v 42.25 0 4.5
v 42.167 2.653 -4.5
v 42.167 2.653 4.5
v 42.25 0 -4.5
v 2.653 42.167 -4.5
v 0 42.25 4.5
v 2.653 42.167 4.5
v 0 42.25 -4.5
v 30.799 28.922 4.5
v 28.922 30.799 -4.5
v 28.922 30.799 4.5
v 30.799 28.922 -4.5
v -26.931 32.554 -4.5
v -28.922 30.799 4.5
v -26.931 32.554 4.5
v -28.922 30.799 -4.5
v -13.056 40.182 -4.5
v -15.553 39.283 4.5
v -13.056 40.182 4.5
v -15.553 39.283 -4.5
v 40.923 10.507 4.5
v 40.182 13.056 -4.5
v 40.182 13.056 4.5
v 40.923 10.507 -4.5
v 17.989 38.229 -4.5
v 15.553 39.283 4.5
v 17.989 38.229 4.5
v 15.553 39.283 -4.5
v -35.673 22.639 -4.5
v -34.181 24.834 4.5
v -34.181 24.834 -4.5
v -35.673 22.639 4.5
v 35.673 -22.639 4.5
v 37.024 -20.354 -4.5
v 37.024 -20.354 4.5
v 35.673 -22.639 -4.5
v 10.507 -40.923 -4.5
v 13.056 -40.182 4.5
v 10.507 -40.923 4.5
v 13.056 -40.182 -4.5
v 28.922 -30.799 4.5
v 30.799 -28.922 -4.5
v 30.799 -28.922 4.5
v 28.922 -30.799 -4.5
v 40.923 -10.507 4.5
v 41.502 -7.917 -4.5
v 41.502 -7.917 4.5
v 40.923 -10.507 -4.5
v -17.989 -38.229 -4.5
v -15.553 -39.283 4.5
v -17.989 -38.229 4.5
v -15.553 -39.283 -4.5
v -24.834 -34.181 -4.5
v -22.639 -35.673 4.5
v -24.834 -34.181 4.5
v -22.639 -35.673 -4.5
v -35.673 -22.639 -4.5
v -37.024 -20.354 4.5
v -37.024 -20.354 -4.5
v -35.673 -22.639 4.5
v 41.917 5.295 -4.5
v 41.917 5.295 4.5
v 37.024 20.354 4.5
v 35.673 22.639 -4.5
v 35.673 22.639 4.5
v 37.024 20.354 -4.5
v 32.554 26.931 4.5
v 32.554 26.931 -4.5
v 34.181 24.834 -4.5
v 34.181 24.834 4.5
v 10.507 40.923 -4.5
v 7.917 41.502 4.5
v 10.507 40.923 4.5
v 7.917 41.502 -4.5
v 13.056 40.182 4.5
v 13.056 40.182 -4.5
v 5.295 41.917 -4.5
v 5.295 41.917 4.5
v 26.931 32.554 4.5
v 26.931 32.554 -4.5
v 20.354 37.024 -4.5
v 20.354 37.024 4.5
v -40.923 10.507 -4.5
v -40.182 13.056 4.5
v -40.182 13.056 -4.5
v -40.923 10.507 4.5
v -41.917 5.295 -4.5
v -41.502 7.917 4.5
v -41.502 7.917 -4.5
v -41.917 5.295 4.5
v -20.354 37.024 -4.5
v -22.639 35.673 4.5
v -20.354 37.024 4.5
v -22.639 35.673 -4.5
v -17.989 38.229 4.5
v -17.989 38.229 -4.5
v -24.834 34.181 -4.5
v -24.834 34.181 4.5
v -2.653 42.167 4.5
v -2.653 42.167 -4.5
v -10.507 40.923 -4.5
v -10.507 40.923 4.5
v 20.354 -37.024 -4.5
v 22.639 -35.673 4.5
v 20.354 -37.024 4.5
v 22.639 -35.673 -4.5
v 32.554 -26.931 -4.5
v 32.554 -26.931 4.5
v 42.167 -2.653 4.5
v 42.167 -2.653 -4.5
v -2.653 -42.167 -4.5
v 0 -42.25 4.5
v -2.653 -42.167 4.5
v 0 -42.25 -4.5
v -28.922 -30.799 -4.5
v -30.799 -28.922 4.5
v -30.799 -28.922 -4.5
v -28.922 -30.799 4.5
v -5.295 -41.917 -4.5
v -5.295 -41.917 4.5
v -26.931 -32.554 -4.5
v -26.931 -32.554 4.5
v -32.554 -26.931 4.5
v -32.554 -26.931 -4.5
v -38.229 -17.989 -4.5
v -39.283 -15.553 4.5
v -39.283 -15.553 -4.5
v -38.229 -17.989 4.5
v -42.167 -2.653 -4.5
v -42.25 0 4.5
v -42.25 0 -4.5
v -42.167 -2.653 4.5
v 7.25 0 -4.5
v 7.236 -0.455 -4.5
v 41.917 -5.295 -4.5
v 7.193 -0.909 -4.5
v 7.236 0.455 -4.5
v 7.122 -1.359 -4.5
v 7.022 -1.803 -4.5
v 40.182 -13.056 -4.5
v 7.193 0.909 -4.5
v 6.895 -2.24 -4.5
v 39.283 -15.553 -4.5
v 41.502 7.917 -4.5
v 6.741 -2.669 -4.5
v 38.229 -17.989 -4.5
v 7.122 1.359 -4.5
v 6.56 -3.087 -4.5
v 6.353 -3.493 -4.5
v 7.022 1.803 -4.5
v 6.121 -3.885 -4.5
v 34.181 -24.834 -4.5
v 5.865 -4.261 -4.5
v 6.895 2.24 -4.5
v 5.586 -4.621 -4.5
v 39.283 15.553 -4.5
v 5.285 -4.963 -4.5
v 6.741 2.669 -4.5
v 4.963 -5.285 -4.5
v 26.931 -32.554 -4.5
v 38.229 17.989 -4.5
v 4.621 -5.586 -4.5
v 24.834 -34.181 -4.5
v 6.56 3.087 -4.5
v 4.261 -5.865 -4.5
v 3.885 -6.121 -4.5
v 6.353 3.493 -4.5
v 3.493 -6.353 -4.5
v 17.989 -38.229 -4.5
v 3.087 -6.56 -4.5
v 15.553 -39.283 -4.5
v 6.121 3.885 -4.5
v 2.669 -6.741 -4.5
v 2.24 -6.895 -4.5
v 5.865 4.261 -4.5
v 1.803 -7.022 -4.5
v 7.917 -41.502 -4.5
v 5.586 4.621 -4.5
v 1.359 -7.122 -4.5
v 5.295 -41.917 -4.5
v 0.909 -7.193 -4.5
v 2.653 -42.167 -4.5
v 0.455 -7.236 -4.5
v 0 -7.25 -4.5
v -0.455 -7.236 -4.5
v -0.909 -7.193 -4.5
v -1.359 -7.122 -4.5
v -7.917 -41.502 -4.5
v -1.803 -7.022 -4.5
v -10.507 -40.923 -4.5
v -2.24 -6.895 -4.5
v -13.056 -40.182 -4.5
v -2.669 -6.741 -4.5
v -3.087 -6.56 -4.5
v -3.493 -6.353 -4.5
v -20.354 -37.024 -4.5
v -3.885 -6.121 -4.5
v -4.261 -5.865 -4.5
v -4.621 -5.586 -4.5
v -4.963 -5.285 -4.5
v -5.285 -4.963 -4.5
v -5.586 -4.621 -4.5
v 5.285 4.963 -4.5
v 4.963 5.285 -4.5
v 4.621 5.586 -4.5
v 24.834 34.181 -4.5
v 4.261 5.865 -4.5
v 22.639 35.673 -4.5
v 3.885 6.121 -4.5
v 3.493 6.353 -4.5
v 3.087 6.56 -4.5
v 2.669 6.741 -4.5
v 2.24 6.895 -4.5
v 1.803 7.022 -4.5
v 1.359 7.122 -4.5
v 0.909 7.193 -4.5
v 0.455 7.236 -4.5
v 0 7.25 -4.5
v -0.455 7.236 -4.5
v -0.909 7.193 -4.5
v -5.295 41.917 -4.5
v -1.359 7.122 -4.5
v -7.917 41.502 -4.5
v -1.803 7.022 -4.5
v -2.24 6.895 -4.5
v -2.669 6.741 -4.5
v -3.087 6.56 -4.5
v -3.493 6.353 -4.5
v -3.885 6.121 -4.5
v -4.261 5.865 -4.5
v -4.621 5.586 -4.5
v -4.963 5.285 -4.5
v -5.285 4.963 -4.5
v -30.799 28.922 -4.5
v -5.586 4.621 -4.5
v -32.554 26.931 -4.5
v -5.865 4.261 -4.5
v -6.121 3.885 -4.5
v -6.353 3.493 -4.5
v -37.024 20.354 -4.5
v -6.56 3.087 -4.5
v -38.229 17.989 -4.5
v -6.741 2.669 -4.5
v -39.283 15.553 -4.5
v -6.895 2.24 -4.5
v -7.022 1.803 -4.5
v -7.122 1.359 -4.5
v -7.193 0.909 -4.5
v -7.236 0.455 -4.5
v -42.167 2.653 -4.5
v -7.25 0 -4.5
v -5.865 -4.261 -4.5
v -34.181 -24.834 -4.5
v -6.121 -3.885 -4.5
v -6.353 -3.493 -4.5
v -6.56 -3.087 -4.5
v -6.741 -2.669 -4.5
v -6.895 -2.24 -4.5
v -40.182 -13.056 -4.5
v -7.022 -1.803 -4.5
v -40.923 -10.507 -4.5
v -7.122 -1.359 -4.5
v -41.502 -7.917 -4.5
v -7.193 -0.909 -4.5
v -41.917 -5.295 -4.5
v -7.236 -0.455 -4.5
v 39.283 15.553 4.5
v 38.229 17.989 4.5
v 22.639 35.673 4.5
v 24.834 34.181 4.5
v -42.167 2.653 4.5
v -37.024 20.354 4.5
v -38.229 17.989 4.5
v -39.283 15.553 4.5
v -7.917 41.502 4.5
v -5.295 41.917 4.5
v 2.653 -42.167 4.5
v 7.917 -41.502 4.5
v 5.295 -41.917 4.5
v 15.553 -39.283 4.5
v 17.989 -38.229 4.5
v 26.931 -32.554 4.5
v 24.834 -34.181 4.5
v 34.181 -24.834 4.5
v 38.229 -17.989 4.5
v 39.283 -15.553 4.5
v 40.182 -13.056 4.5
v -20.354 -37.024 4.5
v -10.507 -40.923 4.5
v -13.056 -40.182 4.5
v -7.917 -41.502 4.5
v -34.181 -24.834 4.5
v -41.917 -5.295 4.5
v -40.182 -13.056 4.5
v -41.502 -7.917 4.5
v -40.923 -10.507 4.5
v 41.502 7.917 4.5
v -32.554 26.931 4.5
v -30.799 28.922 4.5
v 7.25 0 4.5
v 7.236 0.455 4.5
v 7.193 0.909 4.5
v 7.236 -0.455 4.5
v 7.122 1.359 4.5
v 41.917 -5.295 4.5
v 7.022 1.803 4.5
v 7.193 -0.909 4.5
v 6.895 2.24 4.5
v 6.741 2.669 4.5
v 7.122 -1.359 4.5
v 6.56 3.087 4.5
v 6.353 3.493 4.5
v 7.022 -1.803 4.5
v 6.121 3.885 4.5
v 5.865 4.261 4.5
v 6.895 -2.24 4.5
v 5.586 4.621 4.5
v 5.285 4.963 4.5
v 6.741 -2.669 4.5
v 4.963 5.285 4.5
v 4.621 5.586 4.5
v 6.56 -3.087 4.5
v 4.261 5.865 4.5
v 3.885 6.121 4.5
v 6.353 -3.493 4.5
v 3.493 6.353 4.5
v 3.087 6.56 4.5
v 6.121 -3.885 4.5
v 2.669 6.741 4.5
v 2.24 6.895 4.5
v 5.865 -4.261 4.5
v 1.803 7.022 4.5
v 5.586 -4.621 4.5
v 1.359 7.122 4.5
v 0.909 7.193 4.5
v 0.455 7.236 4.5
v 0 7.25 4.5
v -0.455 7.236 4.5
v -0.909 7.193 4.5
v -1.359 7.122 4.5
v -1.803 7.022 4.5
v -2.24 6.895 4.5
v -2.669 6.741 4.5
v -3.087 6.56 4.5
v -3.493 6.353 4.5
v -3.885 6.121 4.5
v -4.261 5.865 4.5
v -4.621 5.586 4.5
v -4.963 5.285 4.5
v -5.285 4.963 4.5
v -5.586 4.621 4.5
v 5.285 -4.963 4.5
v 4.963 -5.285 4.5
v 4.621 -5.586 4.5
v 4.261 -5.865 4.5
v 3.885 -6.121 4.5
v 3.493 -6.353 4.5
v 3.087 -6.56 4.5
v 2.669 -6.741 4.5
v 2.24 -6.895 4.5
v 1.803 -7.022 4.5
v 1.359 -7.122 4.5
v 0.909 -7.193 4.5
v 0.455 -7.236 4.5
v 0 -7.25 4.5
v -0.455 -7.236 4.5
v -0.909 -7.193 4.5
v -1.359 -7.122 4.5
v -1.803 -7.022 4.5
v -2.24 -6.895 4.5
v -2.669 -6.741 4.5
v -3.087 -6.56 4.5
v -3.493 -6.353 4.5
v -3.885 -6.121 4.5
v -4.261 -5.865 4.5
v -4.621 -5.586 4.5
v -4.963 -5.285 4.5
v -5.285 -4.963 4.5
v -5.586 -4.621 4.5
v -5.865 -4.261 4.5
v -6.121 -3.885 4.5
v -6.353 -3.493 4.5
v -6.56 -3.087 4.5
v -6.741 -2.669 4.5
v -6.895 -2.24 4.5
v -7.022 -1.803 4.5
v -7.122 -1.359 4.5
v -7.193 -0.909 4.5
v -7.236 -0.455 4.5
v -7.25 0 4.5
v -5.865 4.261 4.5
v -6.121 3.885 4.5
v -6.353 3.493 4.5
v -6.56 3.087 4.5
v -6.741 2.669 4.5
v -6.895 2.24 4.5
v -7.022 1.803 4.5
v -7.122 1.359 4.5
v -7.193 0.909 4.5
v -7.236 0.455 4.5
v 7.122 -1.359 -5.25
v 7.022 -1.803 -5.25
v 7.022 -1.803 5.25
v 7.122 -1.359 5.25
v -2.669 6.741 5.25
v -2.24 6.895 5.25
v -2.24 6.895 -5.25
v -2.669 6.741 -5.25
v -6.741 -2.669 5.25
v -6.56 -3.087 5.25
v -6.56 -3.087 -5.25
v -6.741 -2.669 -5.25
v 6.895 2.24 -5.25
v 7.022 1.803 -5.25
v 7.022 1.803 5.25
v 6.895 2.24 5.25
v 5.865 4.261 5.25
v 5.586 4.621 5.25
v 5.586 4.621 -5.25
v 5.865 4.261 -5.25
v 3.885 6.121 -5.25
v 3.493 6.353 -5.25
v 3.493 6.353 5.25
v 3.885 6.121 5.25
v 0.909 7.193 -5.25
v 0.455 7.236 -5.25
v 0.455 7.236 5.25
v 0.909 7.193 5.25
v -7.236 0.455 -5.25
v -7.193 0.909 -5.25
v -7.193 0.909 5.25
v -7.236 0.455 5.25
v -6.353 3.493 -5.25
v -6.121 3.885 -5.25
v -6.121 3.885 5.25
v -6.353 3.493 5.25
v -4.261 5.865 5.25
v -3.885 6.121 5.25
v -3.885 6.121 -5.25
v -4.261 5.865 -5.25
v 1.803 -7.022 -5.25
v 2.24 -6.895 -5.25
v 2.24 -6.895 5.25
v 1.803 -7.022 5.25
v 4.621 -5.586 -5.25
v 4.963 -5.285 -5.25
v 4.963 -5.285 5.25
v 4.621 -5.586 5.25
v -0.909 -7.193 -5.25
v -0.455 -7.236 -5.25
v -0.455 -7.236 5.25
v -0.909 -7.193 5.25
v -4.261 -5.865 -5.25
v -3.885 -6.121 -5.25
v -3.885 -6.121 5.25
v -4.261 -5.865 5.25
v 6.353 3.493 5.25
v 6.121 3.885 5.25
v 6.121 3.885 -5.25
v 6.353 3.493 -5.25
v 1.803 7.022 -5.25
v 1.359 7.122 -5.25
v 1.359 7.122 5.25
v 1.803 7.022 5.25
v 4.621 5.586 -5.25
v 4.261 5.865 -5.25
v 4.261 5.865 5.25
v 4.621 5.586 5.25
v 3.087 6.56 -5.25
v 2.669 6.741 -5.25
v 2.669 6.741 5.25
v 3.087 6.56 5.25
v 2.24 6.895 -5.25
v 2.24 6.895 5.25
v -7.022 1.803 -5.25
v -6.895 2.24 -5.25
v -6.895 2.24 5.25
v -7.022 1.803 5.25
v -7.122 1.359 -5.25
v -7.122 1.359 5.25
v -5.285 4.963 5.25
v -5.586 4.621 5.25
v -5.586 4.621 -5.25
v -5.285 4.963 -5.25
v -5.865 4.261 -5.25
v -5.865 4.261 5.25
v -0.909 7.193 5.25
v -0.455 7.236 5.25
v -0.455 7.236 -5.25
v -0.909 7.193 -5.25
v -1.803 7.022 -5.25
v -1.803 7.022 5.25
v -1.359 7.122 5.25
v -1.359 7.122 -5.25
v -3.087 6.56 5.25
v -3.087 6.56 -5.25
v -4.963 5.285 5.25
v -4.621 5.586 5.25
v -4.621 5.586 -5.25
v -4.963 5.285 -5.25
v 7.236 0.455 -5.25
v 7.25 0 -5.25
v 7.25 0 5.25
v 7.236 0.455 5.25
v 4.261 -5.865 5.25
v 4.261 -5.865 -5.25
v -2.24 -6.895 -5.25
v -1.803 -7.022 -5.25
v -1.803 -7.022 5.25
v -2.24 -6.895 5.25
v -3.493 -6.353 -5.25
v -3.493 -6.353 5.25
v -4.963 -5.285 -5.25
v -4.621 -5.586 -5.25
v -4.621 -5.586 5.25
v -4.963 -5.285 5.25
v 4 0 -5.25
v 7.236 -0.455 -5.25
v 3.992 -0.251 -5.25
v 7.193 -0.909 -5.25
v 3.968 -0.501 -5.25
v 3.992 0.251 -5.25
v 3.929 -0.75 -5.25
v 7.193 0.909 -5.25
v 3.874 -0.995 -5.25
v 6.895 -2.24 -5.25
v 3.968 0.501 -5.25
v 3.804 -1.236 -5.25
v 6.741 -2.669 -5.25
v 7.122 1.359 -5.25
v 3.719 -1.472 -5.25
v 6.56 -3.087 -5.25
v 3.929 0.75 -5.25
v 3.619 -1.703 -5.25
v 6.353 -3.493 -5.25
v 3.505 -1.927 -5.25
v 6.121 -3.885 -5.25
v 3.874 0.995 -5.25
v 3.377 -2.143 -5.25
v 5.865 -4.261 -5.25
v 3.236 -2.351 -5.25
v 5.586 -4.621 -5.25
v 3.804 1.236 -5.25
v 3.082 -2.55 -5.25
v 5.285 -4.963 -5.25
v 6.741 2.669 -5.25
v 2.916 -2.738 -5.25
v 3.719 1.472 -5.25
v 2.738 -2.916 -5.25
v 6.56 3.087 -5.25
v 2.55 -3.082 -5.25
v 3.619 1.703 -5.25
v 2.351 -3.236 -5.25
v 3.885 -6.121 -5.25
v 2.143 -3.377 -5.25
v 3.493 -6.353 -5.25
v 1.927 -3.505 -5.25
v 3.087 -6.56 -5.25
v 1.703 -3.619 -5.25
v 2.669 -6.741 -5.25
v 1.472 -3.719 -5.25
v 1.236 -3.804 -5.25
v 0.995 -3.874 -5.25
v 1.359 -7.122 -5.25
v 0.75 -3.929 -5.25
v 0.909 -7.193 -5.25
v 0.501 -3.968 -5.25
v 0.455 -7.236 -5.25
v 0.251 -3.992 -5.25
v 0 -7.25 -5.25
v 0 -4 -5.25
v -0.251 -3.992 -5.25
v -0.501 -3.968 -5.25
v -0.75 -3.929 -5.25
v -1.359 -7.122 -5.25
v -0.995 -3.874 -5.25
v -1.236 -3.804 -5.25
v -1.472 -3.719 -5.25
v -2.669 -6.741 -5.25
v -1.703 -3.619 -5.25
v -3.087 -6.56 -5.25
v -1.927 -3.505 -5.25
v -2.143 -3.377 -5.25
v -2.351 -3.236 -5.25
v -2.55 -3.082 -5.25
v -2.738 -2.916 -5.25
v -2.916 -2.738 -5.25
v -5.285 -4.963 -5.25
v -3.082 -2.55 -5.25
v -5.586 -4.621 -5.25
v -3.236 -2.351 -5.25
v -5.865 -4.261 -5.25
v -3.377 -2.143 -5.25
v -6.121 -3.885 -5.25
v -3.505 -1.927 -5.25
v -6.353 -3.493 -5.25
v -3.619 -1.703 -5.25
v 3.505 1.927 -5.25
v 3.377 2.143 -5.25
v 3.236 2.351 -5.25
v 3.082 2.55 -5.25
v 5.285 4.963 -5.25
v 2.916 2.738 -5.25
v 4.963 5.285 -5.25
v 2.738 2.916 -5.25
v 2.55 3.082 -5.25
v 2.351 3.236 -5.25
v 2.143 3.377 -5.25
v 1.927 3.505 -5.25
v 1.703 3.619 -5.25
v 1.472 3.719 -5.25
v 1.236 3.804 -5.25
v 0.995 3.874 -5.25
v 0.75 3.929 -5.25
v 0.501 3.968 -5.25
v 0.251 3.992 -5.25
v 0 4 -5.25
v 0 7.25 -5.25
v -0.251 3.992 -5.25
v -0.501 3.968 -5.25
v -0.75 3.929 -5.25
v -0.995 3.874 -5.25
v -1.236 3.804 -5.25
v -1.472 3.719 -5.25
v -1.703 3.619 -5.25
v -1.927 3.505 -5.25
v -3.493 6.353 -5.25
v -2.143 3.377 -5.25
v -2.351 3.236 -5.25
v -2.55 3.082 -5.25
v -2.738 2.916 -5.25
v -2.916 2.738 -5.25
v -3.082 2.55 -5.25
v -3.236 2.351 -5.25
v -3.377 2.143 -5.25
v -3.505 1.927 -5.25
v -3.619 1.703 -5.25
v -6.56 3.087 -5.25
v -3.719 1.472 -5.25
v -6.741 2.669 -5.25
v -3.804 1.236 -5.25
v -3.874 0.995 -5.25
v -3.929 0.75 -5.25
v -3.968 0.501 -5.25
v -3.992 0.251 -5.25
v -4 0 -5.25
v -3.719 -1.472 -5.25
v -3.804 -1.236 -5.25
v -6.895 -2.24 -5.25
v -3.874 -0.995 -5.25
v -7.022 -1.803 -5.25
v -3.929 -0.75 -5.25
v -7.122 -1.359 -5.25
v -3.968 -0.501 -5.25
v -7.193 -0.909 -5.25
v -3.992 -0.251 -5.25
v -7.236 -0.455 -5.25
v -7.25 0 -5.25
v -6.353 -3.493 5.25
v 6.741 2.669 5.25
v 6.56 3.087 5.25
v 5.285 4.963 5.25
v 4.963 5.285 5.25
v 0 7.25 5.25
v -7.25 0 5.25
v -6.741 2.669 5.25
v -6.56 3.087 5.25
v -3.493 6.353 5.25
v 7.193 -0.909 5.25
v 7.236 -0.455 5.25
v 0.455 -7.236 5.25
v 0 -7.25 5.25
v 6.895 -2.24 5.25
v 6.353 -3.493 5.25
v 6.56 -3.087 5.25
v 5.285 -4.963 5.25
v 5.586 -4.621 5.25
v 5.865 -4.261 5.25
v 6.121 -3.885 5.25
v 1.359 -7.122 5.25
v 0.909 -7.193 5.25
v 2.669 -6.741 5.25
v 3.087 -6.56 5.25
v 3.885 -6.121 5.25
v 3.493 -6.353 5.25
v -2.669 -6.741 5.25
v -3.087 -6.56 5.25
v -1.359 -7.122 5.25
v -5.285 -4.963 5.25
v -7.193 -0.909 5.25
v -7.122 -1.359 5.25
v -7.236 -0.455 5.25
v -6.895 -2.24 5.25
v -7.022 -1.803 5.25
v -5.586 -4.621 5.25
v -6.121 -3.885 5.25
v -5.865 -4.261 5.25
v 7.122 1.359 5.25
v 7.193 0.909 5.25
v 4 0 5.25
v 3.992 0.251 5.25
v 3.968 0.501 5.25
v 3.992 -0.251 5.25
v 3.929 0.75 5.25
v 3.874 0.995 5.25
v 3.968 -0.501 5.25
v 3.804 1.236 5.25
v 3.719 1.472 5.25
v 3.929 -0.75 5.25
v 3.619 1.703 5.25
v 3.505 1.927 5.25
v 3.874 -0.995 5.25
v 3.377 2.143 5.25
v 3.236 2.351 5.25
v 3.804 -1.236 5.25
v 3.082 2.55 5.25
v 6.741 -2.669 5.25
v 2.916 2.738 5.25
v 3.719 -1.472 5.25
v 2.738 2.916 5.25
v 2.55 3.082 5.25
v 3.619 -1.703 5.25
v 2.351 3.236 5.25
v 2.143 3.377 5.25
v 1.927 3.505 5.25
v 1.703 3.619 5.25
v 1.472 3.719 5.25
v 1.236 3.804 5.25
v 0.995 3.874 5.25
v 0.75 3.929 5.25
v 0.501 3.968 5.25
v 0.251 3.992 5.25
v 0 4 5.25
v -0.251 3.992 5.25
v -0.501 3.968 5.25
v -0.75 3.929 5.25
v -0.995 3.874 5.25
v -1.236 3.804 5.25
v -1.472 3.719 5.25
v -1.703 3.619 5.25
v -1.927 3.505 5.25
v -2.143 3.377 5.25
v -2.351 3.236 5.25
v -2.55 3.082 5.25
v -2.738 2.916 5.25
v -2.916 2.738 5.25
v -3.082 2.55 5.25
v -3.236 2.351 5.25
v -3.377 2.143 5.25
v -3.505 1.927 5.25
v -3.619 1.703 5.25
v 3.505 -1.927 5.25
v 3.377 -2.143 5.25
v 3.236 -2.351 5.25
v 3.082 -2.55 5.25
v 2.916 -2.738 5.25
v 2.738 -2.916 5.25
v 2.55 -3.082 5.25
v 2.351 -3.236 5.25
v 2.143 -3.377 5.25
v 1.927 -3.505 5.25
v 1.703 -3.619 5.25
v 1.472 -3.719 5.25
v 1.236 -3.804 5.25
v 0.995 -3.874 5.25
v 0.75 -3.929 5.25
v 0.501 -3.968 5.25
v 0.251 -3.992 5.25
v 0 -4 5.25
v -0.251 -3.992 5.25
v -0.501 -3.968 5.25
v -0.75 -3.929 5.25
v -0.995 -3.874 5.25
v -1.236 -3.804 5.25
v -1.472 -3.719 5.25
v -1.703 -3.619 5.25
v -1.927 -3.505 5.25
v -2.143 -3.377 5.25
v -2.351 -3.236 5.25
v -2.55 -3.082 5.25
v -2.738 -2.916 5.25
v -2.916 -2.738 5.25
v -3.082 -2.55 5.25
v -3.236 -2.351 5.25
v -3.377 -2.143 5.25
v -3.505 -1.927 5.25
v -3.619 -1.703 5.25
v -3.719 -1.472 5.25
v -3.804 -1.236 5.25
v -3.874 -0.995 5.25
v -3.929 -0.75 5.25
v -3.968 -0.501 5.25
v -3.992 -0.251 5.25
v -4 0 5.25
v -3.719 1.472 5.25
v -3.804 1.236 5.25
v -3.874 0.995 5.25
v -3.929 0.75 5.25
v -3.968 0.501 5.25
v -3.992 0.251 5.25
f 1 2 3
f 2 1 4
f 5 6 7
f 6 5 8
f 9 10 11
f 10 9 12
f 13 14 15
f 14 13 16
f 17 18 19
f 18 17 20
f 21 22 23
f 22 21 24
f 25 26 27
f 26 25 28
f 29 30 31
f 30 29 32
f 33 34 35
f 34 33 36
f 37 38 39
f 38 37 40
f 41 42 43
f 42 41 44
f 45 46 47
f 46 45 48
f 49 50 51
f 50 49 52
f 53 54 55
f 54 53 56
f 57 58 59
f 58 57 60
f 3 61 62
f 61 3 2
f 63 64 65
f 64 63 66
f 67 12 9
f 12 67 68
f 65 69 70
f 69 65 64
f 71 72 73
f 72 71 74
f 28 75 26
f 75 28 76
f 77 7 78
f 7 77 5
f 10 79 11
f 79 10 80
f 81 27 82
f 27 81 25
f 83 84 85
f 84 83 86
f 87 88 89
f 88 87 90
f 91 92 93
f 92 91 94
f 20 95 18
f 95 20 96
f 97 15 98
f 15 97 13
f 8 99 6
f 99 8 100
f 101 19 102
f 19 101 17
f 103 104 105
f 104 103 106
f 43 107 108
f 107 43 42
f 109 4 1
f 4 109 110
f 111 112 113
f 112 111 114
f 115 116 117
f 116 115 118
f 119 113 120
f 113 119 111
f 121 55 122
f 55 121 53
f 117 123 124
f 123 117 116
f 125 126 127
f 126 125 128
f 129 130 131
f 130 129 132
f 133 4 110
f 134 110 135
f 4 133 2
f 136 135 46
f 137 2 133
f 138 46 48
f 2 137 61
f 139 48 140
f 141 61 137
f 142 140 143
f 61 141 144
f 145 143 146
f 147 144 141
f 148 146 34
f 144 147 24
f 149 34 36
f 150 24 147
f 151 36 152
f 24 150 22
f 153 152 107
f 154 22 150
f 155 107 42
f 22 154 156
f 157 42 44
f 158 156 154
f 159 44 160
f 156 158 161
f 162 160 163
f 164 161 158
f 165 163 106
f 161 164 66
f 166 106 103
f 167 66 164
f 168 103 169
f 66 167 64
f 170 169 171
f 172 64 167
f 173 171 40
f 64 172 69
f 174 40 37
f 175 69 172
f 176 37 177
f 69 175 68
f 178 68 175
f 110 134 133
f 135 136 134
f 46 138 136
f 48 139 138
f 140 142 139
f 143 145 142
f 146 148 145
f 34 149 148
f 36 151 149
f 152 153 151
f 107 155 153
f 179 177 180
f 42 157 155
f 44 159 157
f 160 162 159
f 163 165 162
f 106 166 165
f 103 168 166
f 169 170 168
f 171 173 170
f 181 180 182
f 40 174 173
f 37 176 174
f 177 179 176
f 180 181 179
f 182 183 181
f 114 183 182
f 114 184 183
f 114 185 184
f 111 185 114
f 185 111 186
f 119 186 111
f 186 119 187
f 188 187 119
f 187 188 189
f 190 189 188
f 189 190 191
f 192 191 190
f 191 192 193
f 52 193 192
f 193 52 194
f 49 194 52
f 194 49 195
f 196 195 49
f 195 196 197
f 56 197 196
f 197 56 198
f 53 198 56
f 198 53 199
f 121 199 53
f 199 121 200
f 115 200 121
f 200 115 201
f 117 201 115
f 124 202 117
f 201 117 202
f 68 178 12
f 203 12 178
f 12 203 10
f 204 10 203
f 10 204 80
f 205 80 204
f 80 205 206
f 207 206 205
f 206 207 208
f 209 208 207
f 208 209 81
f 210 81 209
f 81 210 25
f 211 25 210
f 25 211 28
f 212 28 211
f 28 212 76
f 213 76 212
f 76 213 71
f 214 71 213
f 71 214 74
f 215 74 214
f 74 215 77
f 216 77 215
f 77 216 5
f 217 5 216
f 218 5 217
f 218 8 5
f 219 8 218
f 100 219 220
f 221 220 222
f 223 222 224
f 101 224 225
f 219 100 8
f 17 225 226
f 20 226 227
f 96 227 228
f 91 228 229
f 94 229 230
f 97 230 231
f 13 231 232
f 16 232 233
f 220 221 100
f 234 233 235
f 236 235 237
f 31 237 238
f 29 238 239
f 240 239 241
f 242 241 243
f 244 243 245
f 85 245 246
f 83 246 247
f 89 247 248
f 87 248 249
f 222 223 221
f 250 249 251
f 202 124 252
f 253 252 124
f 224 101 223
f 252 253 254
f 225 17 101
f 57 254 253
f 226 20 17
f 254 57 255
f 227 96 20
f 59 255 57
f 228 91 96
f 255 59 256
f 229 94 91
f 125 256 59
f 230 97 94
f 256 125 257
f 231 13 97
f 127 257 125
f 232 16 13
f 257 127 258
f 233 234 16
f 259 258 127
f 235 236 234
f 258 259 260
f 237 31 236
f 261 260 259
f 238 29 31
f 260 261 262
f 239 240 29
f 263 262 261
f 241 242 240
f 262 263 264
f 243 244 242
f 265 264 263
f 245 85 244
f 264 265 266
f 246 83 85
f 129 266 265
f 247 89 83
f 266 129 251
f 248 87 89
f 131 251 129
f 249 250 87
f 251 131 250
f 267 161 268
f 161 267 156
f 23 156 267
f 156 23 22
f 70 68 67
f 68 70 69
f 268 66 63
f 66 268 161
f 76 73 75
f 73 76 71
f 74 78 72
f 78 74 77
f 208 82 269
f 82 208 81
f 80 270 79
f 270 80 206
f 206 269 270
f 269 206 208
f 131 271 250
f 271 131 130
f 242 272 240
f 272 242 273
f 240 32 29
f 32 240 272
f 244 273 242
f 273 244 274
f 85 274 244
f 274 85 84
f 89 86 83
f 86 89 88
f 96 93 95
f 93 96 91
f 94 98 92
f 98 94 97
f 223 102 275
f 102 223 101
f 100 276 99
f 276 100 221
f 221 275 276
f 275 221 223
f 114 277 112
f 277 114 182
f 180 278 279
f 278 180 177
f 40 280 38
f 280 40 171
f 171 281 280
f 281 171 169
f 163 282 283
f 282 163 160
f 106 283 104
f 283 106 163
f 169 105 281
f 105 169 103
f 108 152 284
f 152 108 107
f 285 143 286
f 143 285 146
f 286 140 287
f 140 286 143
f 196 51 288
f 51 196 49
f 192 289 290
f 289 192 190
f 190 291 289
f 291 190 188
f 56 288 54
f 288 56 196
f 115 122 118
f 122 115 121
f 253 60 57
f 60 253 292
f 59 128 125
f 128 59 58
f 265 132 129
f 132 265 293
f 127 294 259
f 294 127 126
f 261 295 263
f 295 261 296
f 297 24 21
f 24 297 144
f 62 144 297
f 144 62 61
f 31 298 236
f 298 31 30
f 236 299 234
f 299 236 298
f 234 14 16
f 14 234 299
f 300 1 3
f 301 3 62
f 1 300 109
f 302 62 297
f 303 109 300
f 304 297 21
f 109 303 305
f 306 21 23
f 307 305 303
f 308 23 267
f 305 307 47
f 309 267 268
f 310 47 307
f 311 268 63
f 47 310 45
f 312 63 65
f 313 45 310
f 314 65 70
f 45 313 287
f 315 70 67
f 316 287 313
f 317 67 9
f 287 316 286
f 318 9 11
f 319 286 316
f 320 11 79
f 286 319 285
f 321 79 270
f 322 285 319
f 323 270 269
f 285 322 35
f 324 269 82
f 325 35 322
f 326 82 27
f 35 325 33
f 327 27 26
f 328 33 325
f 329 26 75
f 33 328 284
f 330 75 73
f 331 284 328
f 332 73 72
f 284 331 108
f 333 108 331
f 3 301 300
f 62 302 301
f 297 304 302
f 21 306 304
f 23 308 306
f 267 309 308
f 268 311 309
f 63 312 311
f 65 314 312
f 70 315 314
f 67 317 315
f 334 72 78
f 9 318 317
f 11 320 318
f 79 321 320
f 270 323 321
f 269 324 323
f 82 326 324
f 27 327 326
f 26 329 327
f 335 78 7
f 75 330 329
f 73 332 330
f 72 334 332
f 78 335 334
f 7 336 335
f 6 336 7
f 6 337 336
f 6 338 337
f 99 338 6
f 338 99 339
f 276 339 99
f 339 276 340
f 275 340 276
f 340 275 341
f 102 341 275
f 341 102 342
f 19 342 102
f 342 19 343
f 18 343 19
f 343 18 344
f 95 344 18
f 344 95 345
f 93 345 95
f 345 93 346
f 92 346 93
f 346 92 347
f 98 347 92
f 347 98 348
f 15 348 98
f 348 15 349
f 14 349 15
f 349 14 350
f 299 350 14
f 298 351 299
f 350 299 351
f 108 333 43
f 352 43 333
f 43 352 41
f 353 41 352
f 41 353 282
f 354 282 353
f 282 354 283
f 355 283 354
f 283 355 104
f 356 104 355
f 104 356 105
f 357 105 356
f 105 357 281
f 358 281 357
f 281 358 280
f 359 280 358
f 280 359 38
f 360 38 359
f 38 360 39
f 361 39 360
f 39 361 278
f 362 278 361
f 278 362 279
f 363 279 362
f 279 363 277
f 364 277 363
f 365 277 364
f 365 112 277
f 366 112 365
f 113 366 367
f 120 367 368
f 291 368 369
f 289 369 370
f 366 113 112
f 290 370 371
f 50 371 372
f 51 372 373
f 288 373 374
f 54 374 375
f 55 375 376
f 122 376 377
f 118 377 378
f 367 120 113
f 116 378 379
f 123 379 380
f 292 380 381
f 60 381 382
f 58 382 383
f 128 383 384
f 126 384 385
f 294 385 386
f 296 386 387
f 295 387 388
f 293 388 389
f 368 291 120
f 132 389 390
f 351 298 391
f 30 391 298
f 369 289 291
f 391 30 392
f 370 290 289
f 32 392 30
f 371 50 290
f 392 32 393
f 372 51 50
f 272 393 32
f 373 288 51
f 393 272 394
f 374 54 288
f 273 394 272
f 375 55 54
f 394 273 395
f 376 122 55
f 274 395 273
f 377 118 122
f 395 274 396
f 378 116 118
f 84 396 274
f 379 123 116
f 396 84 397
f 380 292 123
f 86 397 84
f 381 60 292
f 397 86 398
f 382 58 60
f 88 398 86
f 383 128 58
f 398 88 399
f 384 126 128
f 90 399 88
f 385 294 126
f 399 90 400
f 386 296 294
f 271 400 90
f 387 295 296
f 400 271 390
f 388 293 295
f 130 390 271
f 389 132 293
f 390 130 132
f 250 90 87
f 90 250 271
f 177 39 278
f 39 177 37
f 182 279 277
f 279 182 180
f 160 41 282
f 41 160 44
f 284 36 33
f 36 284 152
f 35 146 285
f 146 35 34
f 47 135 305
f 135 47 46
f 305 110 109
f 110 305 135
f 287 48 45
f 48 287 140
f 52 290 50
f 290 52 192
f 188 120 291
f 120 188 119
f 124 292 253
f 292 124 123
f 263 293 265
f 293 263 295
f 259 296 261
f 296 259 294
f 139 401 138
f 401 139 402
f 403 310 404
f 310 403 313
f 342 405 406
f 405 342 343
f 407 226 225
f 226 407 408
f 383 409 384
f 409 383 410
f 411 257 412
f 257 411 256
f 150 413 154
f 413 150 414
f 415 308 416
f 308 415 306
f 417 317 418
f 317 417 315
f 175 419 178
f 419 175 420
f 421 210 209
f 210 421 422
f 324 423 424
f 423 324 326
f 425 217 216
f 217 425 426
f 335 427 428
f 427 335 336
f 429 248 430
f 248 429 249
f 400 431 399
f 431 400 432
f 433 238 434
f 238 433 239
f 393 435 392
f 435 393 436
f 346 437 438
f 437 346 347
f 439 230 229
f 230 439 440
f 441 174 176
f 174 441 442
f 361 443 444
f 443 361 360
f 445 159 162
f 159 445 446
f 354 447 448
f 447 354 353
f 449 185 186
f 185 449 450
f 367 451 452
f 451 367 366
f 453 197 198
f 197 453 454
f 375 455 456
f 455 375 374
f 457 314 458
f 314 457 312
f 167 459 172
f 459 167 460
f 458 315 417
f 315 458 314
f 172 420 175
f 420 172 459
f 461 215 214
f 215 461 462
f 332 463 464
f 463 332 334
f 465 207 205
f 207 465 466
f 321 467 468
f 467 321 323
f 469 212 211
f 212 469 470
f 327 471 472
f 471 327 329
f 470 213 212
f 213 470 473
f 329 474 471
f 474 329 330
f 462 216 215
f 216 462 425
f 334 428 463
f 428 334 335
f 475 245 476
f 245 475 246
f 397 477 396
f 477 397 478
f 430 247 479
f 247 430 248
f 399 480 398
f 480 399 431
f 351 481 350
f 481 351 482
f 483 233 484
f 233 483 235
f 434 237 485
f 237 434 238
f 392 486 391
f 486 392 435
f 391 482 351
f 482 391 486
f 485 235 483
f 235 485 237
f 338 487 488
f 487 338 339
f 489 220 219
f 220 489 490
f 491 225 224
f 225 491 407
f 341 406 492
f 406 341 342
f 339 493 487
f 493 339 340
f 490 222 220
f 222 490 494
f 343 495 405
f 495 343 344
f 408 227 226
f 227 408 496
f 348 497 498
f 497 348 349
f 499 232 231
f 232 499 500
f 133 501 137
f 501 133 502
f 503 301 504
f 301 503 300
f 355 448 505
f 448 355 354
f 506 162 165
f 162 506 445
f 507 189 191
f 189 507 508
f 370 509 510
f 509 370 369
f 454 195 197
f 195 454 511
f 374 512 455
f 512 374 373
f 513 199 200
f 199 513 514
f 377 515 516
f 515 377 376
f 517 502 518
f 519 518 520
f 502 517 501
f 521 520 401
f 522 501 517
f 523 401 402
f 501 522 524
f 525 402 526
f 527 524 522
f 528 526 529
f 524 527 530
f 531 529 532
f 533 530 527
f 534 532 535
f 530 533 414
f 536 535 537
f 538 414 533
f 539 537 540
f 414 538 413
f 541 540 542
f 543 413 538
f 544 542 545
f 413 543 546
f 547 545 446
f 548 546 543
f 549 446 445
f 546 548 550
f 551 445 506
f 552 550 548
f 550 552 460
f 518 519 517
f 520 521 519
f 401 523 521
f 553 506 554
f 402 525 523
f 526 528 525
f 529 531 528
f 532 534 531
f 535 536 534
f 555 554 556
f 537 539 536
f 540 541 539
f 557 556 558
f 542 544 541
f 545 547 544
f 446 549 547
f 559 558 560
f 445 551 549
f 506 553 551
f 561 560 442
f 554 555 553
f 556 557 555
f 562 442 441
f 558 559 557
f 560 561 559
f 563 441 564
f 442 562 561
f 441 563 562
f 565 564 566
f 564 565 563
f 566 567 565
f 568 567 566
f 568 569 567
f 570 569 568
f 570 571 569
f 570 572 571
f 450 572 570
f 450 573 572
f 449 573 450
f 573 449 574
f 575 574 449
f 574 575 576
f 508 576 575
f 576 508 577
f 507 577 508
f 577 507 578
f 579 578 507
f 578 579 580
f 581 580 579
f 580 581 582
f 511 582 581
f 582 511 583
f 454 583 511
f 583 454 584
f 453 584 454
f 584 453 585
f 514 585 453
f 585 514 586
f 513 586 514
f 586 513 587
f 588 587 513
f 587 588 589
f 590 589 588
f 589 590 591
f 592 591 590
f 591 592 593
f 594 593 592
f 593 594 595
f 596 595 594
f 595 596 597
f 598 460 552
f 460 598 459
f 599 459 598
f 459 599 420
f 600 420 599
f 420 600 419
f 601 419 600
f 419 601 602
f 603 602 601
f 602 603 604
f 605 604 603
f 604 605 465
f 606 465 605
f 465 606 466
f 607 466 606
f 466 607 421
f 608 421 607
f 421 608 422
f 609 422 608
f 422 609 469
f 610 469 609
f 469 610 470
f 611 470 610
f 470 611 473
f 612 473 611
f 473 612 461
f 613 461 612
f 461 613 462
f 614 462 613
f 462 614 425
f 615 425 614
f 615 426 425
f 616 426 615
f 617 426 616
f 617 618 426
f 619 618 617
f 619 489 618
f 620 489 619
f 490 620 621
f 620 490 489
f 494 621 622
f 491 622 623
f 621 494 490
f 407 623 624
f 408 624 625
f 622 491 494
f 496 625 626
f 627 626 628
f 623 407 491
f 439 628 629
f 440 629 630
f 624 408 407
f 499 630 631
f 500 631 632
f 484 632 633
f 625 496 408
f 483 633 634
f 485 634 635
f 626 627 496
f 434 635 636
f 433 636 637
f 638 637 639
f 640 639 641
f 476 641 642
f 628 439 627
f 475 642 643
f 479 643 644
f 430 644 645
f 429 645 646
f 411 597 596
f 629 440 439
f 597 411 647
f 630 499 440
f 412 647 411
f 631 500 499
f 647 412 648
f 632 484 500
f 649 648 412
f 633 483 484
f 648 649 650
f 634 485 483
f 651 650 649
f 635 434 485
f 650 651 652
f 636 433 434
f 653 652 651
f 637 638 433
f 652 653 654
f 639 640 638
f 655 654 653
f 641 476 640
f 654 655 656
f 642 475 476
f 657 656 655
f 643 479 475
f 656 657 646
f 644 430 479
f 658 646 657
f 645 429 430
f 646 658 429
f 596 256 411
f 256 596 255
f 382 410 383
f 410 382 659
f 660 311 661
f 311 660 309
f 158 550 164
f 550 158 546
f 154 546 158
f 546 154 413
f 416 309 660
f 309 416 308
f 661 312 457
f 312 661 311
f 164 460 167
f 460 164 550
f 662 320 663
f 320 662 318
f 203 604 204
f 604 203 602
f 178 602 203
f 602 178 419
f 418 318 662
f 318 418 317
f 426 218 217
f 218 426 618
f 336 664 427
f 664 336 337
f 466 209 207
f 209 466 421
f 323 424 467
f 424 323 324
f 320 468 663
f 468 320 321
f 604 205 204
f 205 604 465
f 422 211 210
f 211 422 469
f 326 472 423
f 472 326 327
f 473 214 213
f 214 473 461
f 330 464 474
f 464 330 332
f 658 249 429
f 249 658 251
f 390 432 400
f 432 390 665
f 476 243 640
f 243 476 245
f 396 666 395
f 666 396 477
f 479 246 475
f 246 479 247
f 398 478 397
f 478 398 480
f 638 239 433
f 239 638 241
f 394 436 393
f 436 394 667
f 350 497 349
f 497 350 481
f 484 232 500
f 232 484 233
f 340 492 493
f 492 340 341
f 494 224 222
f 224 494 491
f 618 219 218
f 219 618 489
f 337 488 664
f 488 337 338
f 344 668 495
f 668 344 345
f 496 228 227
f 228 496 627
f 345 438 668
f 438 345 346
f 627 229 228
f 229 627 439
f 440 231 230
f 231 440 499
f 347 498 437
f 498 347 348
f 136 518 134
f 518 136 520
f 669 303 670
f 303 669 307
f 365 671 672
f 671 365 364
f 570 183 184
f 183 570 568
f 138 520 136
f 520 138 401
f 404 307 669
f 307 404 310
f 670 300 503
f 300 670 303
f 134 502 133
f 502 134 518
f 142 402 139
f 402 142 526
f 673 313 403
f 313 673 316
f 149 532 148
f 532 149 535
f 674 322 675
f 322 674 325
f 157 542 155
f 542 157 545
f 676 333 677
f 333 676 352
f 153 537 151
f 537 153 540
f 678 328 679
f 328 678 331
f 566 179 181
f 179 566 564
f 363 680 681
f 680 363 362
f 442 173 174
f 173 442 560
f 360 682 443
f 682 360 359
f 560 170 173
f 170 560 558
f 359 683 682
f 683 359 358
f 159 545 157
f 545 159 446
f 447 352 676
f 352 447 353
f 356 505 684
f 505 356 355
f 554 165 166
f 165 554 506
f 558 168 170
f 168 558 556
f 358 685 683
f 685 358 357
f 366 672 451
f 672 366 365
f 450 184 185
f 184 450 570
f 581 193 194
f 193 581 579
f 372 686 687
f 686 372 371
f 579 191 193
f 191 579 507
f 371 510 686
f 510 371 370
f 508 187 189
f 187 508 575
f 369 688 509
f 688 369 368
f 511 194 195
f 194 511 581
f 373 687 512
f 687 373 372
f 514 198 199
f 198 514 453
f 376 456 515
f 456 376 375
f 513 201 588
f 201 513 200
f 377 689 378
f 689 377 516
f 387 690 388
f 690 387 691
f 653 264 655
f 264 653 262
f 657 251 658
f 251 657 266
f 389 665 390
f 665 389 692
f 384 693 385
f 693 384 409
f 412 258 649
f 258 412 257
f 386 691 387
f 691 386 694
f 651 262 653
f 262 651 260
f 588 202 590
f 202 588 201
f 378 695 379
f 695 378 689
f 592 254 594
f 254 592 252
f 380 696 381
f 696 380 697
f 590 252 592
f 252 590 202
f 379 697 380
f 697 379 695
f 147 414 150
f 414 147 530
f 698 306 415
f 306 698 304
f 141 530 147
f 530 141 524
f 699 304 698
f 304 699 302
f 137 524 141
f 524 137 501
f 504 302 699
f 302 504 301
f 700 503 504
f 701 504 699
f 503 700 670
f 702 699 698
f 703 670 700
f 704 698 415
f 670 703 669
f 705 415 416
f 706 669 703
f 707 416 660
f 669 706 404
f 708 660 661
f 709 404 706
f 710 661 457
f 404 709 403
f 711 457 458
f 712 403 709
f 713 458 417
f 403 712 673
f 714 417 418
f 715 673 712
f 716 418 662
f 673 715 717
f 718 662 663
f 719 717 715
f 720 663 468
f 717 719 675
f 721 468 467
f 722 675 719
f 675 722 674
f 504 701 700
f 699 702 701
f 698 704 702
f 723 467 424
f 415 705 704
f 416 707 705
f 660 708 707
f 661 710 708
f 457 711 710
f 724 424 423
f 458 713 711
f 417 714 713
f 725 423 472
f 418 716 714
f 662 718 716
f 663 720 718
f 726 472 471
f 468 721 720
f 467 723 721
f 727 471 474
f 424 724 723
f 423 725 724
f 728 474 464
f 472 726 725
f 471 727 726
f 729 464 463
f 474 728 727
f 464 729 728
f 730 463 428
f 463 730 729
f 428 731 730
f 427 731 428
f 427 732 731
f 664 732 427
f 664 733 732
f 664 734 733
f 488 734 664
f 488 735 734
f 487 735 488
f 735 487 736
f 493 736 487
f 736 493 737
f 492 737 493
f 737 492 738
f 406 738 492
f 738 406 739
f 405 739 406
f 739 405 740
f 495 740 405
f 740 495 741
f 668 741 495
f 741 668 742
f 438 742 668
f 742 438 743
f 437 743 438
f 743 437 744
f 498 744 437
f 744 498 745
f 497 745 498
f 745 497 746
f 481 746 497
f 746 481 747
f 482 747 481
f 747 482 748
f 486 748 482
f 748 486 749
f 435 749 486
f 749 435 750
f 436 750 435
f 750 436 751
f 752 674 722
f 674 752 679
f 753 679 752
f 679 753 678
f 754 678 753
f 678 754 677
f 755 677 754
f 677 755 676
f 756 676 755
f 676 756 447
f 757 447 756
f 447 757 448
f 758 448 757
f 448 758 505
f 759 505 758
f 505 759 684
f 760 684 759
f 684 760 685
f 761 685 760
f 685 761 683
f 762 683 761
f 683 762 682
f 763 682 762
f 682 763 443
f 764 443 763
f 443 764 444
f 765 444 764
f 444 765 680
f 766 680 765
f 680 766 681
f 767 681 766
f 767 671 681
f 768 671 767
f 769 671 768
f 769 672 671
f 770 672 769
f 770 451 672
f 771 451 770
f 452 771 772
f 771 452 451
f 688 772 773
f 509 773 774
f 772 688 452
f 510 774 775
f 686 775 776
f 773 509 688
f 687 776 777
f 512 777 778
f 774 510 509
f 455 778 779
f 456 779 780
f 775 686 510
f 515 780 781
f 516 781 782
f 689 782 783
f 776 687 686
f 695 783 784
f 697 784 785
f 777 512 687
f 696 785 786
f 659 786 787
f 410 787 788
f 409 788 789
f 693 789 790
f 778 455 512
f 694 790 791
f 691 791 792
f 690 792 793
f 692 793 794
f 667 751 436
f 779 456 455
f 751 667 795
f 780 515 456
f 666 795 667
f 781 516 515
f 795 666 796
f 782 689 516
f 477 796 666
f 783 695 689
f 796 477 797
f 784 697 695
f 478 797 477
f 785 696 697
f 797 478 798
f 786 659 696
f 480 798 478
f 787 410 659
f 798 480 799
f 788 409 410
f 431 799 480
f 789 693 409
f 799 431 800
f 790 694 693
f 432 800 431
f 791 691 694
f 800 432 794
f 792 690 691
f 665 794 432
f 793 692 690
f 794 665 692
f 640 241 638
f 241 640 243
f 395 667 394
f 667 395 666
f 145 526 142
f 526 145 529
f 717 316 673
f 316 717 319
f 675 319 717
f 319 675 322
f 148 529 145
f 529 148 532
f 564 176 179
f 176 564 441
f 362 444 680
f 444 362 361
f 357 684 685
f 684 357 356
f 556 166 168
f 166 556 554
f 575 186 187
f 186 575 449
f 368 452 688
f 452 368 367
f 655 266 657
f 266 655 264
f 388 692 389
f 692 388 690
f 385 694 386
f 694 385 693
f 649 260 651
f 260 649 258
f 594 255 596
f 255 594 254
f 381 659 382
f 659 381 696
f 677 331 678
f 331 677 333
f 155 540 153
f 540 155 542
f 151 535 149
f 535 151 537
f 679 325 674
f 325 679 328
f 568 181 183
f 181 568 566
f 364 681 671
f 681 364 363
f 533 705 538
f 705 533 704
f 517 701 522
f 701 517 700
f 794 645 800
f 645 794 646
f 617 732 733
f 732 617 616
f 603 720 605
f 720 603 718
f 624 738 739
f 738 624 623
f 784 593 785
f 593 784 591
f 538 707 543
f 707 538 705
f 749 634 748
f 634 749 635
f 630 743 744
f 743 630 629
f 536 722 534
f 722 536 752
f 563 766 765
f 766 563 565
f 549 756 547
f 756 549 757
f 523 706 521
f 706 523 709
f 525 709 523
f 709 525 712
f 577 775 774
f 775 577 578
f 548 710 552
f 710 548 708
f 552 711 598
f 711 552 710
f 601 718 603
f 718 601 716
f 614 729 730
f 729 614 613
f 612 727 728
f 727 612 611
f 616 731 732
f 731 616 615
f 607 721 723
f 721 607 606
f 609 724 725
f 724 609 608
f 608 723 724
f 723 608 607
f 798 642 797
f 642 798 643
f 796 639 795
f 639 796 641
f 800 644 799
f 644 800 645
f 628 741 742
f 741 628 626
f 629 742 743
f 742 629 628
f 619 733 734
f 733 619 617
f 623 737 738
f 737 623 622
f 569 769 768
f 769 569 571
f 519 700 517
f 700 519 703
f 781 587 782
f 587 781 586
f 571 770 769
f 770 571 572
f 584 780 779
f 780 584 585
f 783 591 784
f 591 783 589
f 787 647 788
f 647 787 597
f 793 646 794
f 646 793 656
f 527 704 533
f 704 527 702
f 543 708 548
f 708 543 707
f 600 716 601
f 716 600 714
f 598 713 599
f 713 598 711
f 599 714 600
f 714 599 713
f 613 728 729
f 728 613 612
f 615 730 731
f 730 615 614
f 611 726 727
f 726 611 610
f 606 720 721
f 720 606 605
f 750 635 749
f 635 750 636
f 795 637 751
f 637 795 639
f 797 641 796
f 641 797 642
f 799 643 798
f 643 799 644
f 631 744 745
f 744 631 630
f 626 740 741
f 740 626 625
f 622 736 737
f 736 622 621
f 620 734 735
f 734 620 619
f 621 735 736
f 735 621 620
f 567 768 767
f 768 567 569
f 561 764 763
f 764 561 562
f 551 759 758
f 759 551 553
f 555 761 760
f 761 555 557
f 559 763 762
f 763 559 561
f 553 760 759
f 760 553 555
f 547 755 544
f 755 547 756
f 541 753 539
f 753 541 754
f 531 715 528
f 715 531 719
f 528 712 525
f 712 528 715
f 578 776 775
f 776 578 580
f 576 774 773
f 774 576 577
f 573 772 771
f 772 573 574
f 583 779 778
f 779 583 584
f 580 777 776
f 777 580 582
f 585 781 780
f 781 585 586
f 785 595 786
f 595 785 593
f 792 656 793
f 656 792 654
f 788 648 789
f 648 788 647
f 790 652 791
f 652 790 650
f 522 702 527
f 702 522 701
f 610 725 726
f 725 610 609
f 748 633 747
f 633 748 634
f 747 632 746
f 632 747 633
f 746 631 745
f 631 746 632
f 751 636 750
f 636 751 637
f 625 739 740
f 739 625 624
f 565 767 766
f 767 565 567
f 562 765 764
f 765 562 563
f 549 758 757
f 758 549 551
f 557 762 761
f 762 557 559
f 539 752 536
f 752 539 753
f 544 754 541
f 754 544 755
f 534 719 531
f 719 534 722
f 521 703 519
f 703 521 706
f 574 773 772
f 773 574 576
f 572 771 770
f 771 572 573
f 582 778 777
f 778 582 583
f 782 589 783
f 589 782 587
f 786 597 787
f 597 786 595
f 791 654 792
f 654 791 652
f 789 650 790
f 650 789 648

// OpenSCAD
/*
 * bed box drawer role (Bettkastenschubladenrolle)
 *
 * (C) 2019 Guido Berning
 *
 * Source code:
 *   https://github.com/SaJaToGu/BedBoxDrawerRole
 *
 * Project page on Thingiverse:
 *   https://www.thingiverse.com/thing:?
 *
 * licensed under the Creative Commons - Attribution - Non-Commercial - Share Alike license.
 * http://creativecommons.org/licenses/by-nc-sa/3.0/
 */
 
 difference() {
    {
        union()
        {
        cylinder(d=84.5, h=9.0, center=true, $fn = 100);
        cylinder(d=14.5, h=10.5, center=true, $fn = 100);
        }
    }
    {
    cylinder(d=8.0, h=11.0, center=true, $fn = 100);
    }
}
